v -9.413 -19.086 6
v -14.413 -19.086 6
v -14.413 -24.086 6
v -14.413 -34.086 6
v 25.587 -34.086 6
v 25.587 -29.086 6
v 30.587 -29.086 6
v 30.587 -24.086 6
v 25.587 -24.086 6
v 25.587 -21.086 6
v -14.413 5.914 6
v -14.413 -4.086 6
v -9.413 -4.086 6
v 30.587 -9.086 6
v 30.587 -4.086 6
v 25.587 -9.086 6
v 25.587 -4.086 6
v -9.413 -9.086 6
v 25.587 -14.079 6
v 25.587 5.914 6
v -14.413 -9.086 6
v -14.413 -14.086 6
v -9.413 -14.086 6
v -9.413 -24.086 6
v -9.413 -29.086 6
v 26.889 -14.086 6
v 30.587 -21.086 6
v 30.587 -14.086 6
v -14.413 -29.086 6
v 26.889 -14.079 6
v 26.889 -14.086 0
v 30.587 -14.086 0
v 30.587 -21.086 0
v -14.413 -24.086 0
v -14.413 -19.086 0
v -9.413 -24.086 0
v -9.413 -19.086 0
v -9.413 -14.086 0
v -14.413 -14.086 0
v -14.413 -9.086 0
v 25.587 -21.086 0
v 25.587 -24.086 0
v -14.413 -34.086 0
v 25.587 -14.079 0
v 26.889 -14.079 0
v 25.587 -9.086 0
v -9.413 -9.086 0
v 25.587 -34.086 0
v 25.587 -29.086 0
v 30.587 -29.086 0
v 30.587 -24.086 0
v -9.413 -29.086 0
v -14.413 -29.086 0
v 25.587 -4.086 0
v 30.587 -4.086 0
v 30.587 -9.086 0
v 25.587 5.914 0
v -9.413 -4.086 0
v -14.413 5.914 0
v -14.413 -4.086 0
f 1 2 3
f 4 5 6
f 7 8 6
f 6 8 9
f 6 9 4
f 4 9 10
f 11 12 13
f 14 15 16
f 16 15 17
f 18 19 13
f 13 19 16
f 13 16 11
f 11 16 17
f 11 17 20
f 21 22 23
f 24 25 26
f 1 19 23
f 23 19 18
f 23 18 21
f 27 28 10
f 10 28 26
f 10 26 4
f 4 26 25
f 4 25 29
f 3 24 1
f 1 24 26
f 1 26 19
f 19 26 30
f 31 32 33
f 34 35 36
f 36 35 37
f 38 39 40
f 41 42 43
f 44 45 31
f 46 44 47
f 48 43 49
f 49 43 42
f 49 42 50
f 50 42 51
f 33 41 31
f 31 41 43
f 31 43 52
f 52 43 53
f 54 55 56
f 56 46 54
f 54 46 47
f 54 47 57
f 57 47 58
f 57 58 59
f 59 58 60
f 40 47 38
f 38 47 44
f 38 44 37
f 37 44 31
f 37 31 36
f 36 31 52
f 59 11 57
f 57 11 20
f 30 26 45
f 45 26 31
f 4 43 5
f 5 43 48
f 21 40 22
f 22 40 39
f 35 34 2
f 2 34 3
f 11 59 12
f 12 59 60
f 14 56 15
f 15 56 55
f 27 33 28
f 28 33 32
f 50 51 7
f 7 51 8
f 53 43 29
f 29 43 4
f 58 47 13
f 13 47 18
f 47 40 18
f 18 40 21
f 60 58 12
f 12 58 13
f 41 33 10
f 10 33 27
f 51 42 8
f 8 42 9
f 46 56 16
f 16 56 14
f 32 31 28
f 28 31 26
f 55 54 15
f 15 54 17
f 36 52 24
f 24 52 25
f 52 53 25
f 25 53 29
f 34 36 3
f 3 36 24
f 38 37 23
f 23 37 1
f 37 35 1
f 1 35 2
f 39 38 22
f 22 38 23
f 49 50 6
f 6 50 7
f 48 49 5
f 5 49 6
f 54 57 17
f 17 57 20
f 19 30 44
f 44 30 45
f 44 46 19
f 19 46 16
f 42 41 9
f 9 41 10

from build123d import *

# Parameters (mm, degrees)
SKETCH1_W           = 45
SKETCH1_H           = 40
BOSS_EXTRUDE1_DEPTH = 6
SKETCH2_W           = 5
SKETCH2_H           = 5
SKETCH2_W_2         = 3.698246201
SKETCH2_H_2         = 10
SKETCH2_H_3         = 3
CUT_EXTRUDE1_DEPTH  = 6
SKETCH3_W           = 5
SKETCH3_H           = 5
CUT_EXTRUDE2_DEPTH  = 6
SKETCH4_W           = 5
SKETCH4_H           = 4.992810735
SKETCH4_H_2         = 10
SKETCH4_H_3         = 3
CUT_EXTRUDE3_DEPTH  = 6


with BuildPart() as part:
    # Sketch1 → Boss-Extrude1 (new body)
    with BuildSketch(Plane.XY):
        with Locations((8.087316256, -14.086161404)):
            Rectangle(SKETCH1_W, SKETCH1_H)
    extrude(amount=BOSS_EXTRUDE1_DEPTH)

    # Sketch2 → Cut-Extrude1 (cut)
    with BuildSketch(Plane.XY.offset(6)):
        with Locations((-11.912683744, -6.586161404)):
            Rectangle(SKETCH2_W, SKETCH2_H)
        with Locations((-11.912683744, -16.586161404)):
            Rectangle(SKETCH2_W, SKETCH2_H)
        with Locations((-11.912683744, -26.586161404)):
            Rectangle(SKETCH2_W, SKETCH2_H)
        with Locations((28.738193155, 0.913838596)):
            Rectangle(SKETCH2_W_2, SKETCH2_H_2)
        with Locations((28.738193155, -11.586161404)):
            Rectangle(SKETCH2_W_2, SKETCH2_H)
        with Locations((28.738193155, -22.586161404)):
            Rectangle(SKETCH2_W_2, SKETCH2_H_3)
    extrude(amount=-CUT_EXTRUDE1_DEPTH, mode=Mode.SUBTRACT)

    # Sketch3 → Cut-Extrude2 (cut)
    with BuildSketch(Plane.XY.offset(6)):
        with Locations((28.087316256, -31.586161404)):
            Rectangle(SKETCH3_W, SKETCH3_H)
    extrude(amount=-CUT_EXTRUDE2_DEPTH, mode=Mode.SUBTRACT)

    # Sketch4 → Cut-Extrude3 (cut)
    with BuildSketch(Plane.XY.offset(6)):
        with Locations((28.087316256, -11.582566772)):
            Rectangle(SKETCH4_W, SKETCH4_H)
        with Locations((28.087316256, 0.913838596)):
            Rectangle(SKETCH4_W, SKETCH4_H_2)
        with Locations((28.087316256, -22.586161404)):
            Rectangle(SKETCH4_W, SKETCH4_H_3)
    extrude(amount=-CUT_EXTRUDE3_DEPTH, mode=Mode.SUBTRACT)


solid = part.part
